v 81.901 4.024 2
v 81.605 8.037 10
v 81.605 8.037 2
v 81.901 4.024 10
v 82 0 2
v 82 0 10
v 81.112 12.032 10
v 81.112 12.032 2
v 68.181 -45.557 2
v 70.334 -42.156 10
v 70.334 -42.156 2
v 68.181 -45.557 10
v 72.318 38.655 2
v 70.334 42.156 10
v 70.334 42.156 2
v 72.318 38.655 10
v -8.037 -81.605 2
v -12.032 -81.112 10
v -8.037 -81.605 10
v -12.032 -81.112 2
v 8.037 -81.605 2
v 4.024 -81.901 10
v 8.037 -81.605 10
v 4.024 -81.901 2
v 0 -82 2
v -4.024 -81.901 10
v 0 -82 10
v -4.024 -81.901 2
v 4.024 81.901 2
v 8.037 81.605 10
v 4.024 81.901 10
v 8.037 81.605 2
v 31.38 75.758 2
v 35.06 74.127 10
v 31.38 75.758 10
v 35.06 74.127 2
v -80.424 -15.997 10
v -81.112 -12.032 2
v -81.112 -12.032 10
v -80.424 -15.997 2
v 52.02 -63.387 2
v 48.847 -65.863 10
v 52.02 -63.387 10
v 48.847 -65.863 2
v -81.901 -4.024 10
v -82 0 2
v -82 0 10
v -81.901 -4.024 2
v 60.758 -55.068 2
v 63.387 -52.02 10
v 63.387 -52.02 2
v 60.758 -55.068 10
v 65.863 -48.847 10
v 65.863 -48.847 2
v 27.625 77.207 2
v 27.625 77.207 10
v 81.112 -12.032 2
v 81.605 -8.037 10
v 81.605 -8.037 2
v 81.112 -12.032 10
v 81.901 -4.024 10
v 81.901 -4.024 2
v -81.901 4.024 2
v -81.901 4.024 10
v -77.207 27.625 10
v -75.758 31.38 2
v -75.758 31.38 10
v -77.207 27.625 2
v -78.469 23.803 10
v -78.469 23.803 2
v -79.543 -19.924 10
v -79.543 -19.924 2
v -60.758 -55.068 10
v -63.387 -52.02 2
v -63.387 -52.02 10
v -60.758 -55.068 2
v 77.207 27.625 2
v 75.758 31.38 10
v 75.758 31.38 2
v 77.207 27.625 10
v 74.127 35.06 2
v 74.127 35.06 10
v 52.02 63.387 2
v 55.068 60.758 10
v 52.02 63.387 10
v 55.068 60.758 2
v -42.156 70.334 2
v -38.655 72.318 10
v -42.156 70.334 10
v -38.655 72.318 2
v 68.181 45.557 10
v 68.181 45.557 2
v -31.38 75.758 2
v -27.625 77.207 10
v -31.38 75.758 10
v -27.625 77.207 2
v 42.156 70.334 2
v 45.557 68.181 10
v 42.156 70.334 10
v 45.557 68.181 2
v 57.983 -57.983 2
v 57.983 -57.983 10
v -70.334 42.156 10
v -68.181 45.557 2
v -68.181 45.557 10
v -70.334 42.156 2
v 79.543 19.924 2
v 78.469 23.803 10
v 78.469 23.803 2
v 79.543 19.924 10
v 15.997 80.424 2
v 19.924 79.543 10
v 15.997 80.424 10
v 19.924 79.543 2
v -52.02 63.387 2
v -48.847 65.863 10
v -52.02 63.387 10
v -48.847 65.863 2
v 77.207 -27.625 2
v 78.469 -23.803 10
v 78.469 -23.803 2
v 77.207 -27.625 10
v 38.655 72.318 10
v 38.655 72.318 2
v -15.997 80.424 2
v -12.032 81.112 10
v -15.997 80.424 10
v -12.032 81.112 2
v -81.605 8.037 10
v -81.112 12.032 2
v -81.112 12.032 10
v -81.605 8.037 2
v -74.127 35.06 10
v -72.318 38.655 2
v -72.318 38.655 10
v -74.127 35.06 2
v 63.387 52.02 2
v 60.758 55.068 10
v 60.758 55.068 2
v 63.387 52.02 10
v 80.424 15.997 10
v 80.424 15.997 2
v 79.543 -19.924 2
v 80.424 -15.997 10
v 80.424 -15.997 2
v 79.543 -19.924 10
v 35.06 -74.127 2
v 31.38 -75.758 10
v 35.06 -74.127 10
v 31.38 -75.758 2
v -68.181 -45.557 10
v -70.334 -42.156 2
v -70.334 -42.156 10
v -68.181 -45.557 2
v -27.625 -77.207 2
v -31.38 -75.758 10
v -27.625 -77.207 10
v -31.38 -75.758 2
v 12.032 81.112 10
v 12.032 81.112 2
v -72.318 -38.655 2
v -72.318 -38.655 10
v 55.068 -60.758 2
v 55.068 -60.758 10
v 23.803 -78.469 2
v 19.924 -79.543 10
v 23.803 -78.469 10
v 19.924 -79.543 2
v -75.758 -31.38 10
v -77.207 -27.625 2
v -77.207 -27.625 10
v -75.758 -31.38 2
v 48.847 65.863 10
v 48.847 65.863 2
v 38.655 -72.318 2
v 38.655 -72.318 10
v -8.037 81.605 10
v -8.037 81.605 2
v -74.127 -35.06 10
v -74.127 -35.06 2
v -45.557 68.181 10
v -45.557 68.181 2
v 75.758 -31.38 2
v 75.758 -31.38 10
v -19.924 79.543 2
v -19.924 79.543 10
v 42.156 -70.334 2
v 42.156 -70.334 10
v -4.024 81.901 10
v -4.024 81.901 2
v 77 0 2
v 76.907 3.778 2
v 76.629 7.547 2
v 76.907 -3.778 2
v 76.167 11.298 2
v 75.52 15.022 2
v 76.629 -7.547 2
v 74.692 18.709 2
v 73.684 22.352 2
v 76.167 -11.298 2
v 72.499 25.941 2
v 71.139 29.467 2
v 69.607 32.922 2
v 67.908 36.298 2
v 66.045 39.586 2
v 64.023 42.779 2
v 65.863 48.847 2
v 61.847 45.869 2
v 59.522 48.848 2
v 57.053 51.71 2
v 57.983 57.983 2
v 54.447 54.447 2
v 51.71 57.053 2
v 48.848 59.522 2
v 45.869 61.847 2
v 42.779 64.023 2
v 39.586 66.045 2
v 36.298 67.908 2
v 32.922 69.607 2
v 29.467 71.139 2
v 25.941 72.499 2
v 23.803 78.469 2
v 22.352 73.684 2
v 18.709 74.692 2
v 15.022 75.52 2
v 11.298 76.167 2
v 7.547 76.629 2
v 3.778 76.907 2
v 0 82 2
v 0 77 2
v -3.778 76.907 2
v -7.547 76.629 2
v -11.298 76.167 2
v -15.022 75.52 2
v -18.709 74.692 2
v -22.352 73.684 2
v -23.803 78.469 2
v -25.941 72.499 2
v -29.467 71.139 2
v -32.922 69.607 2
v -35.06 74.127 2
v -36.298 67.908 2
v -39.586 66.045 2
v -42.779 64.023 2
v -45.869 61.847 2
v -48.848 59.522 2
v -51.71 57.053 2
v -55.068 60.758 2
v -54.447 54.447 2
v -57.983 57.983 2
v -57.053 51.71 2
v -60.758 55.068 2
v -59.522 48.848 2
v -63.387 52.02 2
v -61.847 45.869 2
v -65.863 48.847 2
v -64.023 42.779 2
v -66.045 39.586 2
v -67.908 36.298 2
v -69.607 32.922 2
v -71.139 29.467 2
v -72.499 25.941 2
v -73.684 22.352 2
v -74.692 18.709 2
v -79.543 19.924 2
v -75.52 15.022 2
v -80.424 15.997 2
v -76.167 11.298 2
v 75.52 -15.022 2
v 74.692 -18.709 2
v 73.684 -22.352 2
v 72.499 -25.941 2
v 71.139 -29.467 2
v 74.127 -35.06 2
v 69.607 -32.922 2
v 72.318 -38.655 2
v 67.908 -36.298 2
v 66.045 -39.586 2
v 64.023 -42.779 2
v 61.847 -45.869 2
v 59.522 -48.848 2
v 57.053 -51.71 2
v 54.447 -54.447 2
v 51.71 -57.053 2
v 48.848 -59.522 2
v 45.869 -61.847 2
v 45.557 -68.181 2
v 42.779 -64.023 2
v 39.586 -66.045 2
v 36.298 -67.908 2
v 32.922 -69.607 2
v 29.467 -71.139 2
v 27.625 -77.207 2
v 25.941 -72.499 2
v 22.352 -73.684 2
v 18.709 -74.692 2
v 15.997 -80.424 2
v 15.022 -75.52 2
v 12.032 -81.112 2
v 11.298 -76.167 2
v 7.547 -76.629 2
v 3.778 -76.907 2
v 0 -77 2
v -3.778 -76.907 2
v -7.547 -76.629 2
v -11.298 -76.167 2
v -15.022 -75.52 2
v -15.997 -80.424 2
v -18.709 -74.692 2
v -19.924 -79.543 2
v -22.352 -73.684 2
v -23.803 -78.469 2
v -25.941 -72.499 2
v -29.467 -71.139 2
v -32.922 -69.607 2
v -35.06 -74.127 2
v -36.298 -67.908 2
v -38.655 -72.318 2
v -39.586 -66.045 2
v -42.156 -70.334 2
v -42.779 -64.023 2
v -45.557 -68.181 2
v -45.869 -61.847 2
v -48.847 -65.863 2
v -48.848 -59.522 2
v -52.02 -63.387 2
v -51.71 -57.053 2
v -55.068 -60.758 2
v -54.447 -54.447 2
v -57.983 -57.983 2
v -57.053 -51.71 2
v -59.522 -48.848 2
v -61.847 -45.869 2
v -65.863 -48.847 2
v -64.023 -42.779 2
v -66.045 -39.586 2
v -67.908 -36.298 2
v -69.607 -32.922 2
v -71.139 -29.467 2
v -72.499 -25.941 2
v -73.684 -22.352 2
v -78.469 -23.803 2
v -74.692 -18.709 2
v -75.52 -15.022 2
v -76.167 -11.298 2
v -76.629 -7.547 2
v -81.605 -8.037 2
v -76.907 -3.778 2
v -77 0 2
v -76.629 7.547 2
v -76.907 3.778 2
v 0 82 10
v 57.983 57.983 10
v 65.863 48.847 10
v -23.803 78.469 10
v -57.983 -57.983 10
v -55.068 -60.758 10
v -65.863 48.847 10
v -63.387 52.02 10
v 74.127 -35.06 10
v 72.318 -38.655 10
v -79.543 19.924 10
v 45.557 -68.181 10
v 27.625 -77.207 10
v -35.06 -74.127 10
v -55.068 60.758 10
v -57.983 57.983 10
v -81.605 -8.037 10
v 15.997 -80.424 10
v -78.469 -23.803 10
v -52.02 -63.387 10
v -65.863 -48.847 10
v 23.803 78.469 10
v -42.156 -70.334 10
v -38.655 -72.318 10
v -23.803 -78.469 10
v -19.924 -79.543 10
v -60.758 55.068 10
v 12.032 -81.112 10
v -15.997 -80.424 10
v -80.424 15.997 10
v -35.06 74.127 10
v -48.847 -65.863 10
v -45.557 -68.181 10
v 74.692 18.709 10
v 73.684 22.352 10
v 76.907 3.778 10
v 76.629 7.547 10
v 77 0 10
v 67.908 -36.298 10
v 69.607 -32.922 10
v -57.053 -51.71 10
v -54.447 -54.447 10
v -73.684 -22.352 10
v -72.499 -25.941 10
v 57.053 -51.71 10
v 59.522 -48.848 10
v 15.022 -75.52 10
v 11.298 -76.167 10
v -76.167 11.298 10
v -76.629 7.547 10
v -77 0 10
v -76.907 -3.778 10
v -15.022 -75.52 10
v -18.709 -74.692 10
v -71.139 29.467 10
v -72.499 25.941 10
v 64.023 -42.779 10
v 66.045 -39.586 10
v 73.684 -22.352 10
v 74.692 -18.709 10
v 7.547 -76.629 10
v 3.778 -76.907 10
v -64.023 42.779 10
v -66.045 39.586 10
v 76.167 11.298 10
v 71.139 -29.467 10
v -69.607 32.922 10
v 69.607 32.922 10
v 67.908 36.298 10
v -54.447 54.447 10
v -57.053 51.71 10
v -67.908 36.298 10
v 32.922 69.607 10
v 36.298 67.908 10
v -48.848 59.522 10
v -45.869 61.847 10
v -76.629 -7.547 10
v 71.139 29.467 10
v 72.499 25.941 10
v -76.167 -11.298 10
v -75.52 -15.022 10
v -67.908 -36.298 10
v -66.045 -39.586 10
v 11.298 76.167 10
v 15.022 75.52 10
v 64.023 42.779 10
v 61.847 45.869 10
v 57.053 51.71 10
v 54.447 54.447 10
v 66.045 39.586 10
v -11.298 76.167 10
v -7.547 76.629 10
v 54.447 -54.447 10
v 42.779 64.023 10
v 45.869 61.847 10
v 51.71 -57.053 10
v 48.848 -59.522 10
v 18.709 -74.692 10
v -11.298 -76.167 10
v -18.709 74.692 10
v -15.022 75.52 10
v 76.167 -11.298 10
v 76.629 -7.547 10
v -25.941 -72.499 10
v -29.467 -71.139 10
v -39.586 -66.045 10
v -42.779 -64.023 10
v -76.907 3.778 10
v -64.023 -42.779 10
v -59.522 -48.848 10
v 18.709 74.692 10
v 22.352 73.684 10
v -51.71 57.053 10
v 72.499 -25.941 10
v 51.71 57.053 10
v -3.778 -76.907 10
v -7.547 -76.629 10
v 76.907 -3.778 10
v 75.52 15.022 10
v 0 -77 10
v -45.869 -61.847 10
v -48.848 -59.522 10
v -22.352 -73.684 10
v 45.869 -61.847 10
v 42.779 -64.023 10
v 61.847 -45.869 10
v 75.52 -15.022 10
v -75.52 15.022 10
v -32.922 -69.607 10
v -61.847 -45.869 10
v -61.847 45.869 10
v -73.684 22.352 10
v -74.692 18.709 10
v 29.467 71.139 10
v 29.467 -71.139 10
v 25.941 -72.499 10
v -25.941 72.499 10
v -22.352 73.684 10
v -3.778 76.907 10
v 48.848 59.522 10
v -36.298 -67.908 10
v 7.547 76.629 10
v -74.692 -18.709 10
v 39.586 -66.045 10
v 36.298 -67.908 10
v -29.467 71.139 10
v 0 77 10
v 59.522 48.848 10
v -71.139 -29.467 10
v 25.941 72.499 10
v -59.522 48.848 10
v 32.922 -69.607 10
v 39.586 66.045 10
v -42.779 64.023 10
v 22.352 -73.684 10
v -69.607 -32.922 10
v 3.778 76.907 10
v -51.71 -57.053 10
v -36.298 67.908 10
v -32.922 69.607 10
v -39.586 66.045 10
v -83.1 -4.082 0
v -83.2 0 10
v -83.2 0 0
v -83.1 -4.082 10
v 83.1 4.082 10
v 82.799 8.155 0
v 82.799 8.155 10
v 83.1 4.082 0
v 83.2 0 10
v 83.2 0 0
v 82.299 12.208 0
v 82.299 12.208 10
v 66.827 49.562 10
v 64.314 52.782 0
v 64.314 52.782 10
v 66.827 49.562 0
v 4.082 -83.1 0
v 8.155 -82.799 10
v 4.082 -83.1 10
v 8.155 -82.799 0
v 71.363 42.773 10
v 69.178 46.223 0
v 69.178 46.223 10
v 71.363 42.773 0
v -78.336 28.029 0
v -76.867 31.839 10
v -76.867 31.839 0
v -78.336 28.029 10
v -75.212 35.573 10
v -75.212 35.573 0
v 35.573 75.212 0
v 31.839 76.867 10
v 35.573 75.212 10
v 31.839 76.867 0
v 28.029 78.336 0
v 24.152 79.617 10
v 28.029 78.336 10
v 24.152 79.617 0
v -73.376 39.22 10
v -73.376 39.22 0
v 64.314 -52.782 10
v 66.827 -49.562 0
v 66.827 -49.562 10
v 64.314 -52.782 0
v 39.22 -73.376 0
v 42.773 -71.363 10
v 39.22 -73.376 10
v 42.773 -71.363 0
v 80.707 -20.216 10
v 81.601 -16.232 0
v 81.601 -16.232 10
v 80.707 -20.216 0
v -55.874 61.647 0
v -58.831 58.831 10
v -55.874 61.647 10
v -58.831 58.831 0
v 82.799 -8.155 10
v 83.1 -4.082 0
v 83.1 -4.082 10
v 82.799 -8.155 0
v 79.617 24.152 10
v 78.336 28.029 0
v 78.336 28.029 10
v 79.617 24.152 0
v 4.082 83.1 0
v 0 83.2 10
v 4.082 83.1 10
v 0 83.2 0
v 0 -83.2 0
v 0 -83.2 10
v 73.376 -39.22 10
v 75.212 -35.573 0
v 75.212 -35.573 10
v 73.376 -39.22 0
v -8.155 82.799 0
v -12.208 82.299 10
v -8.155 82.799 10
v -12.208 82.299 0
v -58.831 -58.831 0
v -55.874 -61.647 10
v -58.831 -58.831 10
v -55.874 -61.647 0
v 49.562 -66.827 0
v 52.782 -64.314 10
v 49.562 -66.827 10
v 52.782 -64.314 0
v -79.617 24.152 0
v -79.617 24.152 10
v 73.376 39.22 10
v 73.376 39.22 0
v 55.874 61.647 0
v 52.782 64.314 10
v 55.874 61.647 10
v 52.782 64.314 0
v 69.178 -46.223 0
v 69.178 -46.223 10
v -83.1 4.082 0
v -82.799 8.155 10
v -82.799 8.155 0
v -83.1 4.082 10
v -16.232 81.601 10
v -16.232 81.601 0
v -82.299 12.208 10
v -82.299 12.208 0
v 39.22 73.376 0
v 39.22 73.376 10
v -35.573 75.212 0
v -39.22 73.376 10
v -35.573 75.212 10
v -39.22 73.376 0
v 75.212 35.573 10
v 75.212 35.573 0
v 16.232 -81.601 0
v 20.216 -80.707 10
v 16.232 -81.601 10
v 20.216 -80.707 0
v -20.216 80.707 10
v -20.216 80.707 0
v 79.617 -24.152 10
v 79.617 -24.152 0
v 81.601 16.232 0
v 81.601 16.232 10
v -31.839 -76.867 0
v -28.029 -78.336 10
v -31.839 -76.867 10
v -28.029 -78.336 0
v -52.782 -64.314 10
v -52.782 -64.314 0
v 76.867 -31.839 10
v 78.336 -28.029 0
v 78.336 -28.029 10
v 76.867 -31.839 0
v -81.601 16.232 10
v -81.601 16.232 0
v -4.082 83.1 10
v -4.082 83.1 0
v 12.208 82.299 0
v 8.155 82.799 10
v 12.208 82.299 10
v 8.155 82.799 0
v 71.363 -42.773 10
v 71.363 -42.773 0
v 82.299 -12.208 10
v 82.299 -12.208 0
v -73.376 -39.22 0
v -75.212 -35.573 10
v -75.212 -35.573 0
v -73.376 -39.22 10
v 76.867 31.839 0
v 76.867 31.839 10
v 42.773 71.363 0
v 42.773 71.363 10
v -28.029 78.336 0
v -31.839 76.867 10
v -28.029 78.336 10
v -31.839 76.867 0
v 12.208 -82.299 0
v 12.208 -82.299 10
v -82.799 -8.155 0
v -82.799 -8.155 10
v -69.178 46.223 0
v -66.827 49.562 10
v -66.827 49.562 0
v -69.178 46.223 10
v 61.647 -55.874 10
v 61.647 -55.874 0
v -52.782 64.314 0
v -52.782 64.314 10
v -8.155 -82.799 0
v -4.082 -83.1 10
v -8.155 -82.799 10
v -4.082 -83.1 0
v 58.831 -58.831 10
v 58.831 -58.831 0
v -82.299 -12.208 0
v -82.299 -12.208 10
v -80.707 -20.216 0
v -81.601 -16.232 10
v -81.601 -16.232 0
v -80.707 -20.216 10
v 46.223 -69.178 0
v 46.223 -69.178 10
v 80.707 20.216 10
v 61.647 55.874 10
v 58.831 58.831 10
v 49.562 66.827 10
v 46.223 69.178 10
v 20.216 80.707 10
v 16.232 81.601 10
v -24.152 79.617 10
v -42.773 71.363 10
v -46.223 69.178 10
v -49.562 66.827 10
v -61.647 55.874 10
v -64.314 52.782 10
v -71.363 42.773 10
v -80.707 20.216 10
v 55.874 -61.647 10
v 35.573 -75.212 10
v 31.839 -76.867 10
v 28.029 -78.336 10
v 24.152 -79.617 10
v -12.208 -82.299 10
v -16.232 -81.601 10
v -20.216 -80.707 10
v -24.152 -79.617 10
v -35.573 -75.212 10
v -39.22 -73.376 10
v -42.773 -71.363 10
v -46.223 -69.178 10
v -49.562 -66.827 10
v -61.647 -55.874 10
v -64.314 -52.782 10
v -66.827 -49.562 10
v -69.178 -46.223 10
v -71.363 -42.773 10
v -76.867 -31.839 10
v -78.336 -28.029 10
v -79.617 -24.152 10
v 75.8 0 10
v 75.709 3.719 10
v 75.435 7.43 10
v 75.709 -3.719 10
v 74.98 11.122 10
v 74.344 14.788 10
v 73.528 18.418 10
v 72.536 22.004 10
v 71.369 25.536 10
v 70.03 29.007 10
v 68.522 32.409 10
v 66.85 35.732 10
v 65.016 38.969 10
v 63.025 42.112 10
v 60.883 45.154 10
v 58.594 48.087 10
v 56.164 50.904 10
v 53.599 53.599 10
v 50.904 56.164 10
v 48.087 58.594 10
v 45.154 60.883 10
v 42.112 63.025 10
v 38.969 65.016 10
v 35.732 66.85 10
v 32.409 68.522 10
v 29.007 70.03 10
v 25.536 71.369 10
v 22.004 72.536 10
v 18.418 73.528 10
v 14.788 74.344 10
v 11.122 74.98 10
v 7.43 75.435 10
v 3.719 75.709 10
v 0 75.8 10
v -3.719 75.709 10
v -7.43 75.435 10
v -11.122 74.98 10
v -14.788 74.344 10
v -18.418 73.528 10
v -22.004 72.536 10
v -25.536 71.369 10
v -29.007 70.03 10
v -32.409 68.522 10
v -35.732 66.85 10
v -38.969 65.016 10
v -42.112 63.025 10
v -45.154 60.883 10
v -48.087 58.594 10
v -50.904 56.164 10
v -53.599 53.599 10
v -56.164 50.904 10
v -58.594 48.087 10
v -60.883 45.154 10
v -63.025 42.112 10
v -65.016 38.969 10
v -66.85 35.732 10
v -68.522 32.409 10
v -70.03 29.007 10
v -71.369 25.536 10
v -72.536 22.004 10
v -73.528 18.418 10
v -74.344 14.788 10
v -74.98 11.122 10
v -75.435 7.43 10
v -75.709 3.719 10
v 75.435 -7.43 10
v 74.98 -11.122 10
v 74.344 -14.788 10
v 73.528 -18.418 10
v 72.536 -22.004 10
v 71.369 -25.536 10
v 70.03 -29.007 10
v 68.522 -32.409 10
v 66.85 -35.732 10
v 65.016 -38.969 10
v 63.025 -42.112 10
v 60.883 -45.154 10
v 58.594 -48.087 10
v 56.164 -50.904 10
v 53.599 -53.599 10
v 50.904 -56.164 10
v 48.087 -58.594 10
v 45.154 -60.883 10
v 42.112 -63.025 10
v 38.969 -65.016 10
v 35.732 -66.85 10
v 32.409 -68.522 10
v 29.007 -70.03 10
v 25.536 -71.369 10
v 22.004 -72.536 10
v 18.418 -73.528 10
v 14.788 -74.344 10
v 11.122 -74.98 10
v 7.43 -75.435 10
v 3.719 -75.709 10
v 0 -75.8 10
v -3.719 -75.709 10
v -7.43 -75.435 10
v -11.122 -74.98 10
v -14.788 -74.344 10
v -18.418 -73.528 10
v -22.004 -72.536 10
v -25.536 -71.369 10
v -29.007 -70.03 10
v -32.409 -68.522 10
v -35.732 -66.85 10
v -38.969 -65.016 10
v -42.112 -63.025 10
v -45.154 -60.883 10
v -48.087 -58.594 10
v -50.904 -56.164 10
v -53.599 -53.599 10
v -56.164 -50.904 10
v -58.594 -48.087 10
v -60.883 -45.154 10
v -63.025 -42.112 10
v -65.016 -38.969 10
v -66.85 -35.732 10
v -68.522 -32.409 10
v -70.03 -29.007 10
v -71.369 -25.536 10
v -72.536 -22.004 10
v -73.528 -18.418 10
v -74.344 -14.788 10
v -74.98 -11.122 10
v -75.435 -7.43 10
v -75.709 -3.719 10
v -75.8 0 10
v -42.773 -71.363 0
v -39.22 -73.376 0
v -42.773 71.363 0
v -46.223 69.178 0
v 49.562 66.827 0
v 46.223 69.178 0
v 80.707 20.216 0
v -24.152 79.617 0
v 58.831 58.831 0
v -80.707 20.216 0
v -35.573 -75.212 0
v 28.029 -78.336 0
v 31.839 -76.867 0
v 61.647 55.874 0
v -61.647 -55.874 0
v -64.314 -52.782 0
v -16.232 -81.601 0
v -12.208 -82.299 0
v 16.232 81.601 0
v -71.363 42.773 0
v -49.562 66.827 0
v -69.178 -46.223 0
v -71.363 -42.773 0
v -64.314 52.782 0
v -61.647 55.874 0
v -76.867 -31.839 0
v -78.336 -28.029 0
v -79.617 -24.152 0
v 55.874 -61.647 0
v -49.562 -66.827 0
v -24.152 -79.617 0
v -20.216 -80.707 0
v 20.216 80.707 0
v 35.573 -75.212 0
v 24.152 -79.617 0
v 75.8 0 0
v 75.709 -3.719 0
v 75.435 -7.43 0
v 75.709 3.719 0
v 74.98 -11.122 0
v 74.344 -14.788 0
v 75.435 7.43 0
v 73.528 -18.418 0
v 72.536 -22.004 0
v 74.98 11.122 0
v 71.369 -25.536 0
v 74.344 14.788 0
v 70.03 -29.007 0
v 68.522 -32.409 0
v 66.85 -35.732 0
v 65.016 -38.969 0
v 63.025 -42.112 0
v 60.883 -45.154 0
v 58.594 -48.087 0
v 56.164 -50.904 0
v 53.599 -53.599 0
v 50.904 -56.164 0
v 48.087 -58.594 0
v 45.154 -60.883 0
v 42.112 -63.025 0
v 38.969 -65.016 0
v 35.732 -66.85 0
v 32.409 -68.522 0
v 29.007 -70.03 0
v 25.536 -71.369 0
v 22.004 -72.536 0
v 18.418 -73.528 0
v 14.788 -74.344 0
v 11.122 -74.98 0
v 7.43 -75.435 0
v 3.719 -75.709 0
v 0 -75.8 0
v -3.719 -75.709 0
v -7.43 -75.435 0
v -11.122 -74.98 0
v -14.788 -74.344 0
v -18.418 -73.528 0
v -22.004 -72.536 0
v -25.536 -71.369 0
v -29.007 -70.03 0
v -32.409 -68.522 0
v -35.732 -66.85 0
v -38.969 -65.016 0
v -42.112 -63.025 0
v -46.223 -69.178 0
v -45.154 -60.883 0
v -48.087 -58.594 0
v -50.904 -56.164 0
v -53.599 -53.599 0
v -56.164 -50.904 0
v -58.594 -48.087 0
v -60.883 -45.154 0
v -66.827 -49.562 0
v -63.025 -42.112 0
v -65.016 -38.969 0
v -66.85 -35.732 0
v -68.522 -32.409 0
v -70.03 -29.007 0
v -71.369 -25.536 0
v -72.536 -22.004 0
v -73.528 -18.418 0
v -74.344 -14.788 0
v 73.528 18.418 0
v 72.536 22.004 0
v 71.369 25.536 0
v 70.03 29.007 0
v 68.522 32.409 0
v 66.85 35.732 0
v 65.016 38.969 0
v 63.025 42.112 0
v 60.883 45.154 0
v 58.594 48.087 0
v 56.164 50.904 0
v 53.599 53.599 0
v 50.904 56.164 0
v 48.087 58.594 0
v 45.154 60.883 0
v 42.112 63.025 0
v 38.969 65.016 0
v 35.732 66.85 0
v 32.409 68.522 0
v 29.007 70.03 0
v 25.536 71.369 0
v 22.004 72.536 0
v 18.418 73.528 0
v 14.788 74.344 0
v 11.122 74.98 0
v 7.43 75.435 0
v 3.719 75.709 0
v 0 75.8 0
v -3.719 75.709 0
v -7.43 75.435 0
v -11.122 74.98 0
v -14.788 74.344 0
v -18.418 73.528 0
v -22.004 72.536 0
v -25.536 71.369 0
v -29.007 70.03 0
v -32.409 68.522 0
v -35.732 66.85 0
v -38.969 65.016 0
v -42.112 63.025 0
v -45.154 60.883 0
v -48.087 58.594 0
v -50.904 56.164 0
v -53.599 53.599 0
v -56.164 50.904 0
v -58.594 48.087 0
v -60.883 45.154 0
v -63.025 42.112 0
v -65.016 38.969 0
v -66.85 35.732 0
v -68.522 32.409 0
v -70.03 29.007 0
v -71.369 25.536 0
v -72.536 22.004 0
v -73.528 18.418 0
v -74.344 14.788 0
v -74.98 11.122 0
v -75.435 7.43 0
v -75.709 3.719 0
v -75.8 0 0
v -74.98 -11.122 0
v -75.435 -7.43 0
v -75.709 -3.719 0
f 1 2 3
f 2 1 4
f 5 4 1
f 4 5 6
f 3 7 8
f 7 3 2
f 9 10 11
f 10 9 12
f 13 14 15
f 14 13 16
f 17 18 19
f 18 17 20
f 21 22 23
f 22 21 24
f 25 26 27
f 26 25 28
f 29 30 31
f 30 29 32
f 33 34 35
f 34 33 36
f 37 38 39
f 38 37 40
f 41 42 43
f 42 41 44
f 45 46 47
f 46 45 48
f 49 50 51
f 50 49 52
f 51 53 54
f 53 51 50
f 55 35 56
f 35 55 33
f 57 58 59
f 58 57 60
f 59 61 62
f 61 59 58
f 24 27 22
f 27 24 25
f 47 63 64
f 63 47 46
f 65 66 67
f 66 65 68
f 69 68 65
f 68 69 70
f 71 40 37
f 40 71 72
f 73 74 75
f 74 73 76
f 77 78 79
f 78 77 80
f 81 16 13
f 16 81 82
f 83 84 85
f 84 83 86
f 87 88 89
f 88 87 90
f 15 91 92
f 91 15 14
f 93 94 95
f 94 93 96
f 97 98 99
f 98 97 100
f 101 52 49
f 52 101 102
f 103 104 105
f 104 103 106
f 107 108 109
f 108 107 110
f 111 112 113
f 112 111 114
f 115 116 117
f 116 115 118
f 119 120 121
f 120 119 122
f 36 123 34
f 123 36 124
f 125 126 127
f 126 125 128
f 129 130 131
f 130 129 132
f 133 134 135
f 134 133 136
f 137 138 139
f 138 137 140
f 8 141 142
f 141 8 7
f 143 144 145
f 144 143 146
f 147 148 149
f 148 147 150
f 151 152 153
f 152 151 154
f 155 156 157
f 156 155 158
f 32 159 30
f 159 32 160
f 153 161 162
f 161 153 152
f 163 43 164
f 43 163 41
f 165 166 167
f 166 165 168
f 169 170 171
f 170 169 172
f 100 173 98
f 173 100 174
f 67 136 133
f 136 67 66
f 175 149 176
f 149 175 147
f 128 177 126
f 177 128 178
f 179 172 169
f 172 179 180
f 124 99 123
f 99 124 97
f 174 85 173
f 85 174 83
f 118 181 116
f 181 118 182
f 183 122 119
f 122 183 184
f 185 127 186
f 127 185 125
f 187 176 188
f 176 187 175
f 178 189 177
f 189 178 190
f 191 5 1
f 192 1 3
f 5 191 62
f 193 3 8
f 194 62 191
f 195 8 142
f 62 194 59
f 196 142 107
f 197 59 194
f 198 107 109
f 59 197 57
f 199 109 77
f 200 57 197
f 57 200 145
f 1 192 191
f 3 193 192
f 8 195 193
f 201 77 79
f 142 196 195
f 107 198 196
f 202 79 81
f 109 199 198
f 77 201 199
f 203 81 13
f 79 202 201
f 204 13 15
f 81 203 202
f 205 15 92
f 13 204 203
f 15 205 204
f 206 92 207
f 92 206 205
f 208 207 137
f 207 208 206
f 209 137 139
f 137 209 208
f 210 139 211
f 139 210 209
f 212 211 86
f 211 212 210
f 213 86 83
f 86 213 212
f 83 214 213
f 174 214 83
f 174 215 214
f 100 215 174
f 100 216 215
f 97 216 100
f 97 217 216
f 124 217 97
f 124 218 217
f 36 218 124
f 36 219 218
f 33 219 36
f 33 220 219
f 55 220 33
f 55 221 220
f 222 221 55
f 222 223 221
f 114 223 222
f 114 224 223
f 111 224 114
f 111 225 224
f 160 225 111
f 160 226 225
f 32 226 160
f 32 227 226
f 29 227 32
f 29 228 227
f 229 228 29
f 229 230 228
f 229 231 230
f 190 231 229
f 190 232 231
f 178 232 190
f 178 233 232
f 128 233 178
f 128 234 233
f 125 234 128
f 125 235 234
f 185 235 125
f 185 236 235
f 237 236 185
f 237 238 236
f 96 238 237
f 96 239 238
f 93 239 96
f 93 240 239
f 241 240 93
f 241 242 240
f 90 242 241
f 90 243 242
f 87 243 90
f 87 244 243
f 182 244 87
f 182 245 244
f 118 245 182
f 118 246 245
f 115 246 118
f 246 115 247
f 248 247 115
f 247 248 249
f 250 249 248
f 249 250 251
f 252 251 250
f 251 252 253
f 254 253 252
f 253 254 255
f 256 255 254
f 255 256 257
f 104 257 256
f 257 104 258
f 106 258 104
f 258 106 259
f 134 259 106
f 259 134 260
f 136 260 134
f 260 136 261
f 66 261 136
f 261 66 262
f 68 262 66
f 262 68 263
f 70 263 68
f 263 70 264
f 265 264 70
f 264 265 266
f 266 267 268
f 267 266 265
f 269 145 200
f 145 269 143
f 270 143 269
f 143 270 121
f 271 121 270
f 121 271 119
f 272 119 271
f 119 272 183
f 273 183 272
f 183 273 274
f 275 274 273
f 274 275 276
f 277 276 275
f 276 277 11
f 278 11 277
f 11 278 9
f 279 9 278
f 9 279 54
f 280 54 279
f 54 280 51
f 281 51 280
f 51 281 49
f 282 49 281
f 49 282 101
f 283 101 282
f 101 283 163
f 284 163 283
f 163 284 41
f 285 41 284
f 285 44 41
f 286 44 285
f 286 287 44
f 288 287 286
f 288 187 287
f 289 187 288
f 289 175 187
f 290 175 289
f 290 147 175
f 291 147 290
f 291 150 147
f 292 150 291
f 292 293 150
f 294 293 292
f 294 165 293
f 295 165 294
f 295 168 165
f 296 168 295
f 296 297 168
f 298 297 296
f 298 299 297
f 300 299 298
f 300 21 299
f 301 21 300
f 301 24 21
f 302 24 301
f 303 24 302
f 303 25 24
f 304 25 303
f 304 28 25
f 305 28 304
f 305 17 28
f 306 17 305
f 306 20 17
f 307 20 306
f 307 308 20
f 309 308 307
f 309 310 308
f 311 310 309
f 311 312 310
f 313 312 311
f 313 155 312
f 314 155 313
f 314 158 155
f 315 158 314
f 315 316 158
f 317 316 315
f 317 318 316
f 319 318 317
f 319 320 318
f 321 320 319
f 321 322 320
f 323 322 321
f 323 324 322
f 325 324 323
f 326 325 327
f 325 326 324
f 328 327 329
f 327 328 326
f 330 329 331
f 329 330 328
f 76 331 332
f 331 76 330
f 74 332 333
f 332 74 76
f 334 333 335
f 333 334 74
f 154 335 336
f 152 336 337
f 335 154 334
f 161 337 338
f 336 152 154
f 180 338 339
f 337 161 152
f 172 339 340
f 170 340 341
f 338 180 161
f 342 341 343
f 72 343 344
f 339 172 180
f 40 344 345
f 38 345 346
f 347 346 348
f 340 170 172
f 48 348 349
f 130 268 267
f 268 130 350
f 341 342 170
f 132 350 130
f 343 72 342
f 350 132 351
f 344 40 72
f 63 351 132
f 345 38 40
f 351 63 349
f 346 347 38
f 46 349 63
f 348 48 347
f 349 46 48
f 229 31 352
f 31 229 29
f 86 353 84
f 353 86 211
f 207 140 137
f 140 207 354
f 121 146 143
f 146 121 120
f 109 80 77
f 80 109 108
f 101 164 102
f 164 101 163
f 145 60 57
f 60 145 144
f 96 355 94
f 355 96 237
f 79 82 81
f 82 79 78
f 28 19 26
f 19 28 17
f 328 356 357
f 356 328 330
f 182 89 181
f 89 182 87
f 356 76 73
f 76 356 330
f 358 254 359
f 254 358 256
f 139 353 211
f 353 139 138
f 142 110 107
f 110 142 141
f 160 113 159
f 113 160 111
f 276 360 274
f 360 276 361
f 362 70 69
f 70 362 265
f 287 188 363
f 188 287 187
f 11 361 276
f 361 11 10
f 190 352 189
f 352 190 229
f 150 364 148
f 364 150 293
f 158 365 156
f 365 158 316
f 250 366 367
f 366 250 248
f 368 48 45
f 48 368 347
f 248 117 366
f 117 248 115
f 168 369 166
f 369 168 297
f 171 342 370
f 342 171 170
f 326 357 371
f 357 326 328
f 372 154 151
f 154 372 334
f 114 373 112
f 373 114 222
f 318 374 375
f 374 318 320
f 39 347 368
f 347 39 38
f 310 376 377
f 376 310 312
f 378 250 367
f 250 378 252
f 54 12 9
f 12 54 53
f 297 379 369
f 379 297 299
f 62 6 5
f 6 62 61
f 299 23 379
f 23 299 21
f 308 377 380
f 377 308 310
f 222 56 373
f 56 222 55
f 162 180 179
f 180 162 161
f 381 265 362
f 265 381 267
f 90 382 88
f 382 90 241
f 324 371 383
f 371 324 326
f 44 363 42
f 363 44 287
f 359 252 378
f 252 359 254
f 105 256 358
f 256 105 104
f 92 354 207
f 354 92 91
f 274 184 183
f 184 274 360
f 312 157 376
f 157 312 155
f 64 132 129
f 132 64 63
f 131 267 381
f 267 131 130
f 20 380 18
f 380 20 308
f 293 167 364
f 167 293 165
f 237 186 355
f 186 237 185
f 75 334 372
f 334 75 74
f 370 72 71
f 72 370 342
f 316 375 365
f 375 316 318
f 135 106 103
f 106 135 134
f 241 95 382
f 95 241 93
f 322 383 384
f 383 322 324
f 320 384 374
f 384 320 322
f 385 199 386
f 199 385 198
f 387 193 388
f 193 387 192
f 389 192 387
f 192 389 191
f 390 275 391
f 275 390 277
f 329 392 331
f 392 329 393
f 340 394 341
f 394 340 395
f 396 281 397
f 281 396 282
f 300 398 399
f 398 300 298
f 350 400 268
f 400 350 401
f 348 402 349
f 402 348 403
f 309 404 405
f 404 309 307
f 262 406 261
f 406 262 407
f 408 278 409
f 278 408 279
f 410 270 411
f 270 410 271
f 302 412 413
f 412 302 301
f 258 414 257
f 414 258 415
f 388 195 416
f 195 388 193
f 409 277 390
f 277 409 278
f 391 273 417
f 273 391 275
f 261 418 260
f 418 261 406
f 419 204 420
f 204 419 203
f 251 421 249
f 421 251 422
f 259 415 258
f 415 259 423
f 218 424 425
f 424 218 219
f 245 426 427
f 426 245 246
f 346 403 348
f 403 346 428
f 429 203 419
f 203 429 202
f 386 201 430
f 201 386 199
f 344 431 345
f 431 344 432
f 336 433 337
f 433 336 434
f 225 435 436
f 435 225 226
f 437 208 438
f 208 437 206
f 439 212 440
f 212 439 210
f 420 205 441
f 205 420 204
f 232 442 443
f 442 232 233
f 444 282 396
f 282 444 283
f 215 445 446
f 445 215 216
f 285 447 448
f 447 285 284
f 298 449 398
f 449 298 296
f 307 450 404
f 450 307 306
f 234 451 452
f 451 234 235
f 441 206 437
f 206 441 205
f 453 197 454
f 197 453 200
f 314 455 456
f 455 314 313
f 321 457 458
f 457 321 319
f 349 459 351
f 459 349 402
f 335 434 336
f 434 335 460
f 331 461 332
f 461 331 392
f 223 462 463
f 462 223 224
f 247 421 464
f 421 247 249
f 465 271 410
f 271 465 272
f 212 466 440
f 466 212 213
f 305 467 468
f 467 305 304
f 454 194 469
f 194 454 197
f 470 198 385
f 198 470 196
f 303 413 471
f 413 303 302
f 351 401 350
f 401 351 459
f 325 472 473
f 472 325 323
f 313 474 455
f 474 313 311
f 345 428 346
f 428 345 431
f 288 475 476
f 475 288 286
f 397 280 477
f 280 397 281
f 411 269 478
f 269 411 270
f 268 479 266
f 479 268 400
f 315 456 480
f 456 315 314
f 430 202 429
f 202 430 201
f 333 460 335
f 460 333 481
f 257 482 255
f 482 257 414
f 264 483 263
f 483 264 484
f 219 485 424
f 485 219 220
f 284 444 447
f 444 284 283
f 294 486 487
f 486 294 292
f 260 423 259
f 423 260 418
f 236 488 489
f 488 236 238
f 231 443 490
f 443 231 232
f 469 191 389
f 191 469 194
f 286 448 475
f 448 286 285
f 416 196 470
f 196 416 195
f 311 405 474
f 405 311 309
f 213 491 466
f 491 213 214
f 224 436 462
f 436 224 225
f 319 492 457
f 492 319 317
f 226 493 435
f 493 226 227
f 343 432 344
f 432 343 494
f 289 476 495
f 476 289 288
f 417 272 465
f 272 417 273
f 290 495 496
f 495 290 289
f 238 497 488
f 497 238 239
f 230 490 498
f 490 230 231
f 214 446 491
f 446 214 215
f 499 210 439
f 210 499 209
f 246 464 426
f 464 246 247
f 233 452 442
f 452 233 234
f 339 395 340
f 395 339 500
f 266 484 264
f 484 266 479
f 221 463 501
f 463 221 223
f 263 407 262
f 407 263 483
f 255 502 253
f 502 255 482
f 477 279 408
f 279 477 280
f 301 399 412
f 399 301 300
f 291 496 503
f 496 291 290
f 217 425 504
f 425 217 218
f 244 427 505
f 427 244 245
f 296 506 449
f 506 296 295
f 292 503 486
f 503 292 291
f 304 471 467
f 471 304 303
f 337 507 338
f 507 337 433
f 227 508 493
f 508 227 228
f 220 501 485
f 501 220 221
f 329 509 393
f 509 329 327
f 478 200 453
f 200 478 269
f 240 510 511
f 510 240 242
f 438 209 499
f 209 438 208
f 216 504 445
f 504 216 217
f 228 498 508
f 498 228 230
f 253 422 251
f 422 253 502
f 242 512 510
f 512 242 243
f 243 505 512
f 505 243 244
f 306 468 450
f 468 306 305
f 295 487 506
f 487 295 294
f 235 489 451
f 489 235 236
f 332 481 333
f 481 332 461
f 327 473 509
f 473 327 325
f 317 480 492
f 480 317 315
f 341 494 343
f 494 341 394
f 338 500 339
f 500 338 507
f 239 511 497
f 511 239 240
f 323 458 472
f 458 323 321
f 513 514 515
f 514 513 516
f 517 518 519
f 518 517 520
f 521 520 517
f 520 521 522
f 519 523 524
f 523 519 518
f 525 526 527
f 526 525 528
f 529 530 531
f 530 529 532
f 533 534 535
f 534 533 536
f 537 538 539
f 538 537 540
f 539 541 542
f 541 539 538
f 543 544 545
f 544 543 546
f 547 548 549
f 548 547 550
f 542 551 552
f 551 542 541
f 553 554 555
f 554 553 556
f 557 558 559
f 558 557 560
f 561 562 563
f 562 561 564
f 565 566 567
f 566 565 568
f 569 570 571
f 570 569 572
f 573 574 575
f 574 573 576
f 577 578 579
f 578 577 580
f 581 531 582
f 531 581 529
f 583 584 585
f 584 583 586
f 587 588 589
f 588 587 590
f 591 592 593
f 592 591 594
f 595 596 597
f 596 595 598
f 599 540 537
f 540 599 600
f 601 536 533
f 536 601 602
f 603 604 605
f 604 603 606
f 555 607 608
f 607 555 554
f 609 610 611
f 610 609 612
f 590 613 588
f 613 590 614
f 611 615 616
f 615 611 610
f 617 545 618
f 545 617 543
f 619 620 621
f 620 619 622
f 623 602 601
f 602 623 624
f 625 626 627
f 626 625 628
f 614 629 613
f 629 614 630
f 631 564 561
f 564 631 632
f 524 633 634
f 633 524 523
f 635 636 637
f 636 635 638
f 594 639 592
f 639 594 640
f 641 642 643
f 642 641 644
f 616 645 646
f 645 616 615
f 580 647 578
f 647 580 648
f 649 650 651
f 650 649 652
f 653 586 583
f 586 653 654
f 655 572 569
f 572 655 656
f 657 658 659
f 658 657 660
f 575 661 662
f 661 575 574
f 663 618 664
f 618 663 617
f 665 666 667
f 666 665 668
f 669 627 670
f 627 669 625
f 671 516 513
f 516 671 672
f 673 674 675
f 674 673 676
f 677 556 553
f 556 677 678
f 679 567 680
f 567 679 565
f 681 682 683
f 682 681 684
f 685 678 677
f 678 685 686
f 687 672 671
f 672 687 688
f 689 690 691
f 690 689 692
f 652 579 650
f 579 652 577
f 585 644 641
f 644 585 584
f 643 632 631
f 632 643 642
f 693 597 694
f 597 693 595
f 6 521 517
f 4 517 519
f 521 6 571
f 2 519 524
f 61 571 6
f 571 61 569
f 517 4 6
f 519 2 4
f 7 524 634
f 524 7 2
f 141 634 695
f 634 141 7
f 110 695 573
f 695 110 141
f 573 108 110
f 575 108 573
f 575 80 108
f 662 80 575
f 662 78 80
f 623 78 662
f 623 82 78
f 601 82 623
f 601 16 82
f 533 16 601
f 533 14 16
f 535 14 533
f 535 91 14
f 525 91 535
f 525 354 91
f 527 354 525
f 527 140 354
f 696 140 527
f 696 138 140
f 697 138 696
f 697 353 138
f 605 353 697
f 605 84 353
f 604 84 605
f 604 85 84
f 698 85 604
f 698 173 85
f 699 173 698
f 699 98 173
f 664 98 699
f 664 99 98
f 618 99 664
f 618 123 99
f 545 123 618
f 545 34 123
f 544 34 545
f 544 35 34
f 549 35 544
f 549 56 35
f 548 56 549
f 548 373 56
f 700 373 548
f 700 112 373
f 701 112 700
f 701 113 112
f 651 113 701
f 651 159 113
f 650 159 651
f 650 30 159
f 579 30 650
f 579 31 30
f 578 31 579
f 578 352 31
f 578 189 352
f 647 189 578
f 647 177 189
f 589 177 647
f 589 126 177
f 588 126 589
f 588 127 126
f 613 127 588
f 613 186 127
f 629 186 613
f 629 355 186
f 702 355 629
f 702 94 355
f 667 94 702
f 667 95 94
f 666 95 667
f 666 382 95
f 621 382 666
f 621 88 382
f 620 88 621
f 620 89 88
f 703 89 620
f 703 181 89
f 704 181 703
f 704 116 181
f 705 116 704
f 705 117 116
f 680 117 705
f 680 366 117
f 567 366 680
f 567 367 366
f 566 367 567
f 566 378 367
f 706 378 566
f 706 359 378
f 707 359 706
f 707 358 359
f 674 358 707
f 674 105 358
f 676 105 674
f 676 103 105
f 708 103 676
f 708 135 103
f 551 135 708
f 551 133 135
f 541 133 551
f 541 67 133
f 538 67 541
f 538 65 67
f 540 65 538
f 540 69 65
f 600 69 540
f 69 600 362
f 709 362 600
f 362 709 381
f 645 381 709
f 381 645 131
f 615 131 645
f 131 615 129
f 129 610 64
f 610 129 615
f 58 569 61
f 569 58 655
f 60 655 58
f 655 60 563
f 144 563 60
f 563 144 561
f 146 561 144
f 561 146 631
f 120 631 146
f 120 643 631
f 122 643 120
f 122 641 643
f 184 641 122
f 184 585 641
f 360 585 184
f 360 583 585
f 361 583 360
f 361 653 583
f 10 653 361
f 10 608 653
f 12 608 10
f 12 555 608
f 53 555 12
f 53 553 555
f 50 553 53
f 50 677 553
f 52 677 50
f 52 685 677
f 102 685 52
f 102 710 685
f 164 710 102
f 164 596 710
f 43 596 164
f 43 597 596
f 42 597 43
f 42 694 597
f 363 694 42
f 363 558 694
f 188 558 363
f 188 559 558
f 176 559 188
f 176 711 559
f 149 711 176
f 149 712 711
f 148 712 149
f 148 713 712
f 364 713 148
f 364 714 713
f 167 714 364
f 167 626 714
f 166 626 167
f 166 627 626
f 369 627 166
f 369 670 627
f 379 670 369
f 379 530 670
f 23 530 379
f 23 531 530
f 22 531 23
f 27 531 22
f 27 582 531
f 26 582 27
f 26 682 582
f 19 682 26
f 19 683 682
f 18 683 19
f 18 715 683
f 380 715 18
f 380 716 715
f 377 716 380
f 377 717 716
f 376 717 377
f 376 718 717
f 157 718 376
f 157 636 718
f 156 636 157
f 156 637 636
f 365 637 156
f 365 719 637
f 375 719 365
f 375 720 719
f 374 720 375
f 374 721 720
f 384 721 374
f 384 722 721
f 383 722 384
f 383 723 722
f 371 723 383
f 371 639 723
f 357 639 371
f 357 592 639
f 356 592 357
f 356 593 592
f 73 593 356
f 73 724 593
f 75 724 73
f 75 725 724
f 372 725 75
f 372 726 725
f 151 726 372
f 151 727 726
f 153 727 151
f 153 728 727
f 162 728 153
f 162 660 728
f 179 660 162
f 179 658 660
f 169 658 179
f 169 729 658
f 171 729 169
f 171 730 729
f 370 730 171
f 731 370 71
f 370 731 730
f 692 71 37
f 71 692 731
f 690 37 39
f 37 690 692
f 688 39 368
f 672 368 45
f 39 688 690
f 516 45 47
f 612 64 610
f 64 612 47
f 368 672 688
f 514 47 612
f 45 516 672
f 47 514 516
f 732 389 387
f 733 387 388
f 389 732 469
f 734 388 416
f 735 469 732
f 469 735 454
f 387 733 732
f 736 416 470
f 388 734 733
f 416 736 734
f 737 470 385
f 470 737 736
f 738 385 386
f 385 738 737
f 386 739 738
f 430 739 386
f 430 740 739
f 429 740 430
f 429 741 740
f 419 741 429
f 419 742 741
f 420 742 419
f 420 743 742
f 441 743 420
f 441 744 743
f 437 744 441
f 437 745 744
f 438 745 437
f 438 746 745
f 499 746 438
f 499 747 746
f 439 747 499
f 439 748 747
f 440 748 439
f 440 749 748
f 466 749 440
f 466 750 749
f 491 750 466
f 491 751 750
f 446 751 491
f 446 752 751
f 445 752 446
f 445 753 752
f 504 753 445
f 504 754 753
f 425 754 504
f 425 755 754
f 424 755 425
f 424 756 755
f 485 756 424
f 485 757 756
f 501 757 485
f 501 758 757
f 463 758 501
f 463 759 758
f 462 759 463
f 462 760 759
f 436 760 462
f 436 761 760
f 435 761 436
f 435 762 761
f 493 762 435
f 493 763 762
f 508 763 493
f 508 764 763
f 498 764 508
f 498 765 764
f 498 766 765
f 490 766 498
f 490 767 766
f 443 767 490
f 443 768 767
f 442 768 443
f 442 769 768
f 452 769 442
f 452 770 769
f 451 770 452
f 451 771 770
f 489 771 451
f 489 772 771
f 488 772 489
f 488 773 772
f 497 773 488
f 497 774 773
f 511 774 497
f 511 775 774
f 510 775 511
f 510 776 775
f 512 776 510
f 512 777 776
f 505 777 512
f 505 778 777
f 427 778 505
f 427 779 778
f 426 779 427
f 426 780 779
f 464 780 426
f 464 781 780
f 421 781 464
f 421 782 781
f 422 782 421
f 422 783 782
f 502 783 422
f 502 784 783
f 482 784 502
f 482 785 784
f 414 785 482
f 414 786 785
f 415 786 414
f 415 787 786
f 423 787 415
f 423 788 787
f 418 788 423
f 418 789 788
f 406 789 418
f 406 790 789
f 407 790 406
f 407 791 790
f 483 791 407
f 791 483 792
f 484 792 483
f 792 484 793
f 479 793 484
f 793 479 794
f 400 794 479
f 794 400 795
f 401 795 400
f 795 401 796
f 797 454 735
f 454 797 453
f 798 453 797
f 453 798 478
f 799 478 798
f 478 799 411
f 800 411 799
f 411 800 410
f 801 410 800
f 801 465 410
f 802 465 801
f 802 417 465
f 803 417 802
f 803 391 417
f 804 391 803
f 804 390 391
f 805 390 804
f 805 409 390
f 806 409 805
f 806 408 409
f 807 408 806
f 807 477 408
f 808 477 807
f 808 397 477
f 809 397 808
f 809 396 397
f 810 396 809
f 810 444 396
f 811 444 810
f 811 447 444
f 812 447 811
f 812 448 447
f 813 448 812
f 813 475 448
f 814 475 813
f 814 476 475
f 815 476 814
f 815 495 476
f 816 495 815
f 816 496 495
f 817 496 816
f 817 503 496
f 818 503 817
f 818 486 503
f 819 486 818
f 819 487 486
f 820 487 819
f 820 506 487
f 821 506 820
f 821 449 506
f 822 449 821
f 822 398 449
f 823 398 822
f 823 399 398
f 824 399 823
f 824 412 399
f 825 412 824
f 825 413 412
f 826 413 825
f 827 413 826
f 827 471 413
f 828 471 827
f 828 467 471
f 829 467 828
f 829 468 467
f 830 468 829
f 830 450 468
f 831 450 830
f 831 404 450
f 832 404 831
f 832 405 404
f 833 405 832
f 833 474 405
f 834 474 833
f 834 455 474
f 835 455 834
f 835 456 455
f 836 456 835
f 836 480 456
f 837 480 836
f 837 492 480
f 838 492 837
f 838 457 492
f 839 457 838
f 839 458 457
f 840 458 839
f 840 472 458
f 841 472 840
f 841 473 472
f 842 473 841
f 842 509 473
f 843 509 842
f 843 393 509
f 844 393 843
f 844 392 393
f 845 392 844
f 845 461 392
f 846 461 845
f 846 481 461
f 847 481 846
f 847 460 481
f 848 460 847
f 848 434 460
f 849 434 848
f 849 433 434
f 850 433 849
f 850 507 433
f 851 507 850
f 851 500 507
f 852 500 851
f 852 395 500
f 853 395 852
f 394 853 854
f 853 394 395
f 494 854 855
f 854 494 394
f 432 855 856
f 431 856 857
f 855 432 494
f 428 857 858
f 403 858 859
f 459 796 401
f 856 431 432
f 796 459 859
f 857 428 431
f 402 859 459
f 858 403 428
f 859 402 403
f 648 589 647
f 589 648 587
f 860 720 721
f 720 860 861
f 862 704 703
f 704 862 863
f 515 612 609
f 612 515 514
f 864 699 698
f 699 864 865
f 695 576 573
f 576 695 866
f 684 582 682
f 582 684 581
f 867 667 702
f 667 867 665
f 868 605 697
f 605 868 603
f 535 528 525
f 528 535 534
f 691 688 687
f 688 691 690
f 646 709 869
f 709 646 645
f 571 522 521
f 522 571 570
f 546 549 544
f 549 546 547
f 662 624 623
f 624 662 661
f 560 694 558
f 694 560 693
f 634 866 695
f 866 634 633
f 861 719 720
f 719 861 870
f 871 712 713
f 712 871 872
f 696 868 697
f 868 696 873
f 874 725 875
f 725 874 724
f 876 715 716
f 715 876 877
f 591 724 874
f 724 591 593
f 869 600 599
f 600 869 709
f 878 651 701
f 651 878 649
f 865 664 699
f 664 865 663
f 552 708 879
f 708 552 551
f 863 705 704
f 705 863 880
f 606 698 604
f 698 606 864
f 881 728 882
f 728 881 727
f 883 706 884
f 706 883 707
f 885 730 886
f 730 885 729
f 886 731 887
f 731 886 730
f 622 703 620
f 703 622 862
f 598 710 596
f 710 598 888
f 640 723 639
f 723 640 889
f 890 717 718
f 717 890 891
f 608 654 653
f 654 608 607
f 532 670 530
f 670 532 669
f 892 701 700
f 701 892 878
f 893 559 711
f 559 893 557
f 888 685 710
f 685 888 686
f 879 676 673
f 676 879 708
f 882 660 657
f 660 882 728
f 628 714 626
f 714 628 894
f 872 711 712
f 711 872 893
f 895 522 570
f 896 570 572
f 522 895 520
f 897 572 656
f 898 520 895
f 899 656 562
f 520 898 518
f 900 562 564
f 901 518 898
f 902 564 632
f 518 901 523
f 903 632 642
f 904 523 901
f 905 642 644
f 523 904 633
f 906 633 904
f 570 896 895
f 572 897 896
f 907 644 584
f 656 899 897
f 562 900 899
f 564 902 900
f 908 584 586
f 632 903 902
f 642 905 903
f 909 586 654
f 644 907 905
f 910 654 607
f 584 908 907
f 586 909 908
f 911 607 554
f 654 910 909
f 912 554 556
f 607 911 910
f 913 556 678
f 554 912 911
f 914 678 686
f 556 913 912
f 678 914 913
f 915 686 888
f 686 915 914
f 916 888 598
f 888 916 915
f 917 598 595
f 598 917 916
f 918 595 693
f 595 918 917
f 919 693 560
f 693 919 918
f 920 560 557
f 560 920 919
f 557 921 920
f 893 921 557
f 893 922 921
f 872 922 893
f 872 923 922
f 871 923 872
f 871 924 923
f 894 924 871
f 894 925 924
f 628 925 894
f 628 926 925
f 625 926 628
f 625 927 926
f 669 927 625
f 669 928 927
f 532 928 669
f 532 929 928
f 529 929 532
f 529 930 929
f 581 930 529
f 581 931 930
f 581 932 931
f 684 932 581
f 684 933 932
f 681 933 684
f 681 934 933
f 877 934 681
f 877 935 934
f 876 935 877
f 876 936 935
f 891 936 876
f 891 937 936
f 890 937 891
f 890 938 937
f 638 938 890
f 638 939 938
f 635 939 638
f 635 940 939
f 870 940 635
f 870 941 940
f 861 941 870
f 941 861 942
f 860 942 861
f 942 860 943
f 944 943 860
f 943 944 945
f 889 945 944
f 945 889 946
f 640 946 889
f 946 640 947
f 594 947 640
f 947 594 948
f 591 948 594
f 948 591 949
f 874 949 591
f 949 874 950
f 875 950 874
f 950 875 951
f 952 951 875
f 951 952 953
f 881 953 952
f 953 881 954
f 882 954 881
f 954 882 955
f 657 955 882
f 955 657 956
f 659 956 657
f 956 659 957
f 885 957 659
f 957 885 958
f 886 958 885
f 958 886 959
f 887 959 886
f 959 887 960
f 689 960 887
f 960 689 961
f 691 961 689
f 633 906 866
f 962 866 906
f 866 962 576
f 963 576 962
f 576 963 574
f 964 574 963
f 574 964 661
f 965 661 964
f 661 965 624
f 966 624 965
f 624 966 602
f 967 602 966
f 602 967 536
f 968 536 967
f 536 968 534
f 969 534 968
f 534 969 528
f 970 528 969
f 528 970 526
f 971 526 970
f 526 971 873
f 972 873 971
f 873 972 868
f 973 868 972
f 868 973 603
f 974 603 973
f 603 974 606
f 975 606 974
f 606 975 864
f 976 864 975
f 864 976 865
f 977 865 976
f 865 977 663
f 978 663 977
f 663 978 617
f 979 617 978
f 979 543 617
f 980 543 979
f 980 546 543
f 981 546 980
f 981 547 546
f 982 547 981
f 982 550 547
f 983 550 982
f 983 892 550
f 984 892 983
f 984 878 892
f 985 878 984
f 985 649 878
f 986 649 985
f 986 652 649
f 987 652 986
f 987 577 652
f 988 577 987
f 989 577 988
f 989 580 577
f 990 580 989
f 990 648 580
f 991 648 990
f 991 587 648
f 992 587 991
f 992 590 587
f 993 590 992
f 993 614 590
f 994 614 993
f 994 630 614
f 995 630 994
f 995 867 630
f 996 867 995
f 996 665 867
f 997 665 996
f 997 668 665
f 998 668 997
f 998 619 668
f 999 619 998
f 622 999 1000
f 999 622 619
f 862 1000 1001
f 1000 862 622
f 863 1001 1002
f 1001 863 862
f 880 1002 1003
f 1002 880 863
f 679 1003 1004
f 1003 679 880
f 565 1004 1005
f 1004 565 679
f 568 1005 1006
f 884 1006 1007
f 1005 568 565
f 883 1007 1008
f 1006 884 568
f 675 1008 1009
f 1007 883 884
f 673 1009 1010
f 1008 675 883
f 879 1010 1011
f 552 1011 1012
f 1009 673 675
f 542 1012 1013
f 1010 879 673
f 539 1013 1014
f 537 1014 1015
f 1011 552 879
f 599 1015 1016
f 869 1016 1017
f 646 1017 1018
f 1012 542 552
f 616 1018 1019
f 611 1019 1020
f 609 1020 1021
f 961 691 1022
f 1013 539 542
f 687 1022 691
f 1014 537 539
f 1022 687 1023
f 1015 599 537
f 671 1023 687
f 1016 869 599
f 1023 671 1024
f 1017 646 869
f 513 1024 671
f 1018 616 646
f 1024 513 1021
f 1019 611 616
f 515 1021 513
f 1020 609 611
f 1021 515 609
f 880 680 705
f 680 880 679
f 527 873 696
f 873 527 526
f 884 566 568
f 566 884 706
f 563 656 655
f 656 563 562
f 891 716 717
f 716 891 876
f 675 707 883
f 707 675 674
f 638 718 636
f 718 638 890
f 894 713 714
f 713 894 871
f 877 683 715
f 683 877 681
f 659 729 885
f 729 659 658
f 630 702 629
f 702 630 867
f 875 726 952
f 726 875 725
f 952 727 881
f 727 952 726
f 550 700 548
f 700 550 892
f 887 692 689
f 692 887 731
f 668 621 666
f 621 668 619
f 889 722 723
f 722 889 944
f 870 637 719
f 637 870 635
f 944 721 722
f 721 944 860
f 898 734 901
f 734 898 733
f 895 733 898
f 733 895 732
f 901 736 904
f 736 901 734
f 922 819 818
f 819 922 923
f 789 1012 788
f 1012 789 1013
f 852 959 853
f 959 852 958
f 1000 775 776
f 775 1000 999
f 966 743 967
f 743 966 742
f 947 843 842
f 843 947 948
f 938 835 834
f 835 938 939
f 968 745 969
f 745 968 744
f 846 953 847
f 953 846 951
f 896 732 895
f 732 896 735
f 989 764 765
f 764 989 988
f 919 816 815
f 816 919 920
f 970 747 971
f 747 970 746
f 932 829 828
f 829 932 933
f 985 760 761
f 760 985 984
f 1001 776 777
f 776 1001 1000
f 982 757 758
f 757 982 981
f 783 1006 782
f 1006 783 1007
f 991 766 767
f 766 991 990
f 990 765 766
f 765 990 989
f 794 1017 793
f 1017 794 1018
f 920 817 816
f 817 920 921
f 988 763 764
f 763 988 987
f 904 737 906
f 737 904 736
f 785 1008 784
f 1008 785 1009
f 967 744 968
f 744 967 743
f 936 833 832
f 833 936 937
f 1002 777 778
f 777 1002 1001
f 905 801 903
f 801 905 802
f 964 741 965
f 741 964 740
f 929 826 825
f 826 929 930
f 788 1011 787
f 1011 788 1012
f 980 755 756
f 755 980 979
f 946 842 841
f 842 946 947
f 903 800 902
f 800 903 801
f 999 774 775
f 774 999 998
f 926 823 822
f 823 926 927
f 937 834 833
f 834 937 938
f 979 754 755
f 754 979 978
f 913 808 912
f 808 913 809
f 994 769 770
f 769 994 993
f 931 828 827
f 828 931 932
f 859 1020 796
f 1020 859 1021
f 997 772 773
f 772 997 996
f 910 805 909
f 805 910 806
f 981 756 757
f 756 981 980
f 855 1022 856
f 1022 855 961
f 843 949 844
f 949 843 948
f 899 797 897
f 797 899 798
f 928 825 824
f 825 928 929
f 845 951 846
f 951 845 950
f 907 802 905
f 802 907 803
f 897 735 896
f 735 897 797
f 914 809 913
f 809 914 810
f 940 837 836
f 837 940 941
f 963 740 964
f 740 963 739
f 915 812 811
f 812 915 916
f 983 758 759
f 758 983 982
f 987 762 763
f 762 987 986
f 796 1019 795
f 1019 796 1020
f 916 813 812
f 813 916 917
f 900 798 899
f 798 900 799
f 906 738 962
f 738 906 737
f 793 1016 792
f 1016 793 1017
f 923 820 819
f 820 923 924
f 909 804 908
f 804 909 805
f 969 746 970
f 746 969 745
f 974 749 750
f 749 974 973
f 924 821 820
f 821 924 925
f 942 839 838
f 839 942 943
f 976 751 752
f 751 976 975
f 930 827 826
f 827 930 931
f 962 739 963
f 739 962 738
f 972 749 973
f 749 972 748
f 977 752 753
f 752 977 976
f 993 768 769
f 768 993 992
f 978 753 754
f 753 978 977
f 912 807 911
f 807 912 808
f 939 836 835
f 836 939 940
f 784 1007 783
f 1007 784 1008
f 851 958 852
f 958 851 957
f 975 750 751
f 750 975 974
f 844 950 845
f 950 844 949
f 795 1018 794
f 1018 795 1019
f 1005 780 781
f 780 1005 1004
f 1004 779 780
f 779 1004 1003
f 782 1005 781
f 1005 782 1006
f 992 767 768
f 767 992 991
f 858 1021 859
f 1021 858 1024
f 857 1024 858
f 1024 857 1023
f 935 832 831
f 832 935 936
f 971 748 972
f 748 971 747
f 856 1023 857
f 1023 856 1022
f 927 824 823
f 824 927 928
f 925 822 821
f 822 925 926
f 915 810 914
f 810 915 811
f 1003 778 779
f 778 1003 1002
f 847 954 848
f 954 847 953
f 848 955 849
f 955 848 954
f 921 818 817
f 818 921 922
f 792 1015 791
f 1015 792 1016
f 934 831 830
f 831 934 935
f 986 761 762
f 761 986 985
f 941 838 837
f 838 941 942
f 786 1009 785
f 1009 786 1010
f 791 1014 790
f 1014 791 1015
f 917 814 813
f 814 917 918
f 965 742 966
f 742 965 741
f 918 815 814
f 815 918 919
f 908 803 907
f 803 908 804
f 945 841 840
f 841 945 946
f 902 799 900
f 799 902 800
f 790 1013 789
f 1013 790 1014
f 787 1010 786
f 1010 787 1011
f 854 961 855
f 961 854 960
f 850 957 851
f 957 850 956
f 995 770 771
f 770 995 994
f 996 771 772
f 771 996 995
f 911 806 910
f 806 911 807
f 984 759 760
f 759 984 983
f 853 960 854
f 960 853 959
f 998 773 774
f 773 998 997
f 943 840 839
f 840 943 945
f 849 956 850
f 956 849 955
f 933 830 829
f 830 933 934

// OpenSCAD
wall = 1.2;
diameter1 = 154;
diameter2 = 164;

h=10;
top_h=2;

/*cylinder(h, diameter2/2+wall, diameter2/2+wall, $fn=128);
translate([0,0,-wall])
	cylinder(h+wall*2, diameter1/2+wall, diameter1/2+wall, $fn=128);
*/

difference() {
	cylinder(h, diameter2/2+wall, diameter2/2+wall, $fn=128);
	translate([0,0,top_h])
		hole();
	translate([0,0,-1])
		cylinder(h+2, diameter1/2-wall, diameter1/2-wall, $fn=128);
}

module hole() {
	difference() {
		cylinder(h, diameter2/2, diameter2/2, $fn=128);
		translate([0,0,-wall])
			cylinder(h+wall*2, diameter1/2, diameter1/2, $fn=128);
	}
}
